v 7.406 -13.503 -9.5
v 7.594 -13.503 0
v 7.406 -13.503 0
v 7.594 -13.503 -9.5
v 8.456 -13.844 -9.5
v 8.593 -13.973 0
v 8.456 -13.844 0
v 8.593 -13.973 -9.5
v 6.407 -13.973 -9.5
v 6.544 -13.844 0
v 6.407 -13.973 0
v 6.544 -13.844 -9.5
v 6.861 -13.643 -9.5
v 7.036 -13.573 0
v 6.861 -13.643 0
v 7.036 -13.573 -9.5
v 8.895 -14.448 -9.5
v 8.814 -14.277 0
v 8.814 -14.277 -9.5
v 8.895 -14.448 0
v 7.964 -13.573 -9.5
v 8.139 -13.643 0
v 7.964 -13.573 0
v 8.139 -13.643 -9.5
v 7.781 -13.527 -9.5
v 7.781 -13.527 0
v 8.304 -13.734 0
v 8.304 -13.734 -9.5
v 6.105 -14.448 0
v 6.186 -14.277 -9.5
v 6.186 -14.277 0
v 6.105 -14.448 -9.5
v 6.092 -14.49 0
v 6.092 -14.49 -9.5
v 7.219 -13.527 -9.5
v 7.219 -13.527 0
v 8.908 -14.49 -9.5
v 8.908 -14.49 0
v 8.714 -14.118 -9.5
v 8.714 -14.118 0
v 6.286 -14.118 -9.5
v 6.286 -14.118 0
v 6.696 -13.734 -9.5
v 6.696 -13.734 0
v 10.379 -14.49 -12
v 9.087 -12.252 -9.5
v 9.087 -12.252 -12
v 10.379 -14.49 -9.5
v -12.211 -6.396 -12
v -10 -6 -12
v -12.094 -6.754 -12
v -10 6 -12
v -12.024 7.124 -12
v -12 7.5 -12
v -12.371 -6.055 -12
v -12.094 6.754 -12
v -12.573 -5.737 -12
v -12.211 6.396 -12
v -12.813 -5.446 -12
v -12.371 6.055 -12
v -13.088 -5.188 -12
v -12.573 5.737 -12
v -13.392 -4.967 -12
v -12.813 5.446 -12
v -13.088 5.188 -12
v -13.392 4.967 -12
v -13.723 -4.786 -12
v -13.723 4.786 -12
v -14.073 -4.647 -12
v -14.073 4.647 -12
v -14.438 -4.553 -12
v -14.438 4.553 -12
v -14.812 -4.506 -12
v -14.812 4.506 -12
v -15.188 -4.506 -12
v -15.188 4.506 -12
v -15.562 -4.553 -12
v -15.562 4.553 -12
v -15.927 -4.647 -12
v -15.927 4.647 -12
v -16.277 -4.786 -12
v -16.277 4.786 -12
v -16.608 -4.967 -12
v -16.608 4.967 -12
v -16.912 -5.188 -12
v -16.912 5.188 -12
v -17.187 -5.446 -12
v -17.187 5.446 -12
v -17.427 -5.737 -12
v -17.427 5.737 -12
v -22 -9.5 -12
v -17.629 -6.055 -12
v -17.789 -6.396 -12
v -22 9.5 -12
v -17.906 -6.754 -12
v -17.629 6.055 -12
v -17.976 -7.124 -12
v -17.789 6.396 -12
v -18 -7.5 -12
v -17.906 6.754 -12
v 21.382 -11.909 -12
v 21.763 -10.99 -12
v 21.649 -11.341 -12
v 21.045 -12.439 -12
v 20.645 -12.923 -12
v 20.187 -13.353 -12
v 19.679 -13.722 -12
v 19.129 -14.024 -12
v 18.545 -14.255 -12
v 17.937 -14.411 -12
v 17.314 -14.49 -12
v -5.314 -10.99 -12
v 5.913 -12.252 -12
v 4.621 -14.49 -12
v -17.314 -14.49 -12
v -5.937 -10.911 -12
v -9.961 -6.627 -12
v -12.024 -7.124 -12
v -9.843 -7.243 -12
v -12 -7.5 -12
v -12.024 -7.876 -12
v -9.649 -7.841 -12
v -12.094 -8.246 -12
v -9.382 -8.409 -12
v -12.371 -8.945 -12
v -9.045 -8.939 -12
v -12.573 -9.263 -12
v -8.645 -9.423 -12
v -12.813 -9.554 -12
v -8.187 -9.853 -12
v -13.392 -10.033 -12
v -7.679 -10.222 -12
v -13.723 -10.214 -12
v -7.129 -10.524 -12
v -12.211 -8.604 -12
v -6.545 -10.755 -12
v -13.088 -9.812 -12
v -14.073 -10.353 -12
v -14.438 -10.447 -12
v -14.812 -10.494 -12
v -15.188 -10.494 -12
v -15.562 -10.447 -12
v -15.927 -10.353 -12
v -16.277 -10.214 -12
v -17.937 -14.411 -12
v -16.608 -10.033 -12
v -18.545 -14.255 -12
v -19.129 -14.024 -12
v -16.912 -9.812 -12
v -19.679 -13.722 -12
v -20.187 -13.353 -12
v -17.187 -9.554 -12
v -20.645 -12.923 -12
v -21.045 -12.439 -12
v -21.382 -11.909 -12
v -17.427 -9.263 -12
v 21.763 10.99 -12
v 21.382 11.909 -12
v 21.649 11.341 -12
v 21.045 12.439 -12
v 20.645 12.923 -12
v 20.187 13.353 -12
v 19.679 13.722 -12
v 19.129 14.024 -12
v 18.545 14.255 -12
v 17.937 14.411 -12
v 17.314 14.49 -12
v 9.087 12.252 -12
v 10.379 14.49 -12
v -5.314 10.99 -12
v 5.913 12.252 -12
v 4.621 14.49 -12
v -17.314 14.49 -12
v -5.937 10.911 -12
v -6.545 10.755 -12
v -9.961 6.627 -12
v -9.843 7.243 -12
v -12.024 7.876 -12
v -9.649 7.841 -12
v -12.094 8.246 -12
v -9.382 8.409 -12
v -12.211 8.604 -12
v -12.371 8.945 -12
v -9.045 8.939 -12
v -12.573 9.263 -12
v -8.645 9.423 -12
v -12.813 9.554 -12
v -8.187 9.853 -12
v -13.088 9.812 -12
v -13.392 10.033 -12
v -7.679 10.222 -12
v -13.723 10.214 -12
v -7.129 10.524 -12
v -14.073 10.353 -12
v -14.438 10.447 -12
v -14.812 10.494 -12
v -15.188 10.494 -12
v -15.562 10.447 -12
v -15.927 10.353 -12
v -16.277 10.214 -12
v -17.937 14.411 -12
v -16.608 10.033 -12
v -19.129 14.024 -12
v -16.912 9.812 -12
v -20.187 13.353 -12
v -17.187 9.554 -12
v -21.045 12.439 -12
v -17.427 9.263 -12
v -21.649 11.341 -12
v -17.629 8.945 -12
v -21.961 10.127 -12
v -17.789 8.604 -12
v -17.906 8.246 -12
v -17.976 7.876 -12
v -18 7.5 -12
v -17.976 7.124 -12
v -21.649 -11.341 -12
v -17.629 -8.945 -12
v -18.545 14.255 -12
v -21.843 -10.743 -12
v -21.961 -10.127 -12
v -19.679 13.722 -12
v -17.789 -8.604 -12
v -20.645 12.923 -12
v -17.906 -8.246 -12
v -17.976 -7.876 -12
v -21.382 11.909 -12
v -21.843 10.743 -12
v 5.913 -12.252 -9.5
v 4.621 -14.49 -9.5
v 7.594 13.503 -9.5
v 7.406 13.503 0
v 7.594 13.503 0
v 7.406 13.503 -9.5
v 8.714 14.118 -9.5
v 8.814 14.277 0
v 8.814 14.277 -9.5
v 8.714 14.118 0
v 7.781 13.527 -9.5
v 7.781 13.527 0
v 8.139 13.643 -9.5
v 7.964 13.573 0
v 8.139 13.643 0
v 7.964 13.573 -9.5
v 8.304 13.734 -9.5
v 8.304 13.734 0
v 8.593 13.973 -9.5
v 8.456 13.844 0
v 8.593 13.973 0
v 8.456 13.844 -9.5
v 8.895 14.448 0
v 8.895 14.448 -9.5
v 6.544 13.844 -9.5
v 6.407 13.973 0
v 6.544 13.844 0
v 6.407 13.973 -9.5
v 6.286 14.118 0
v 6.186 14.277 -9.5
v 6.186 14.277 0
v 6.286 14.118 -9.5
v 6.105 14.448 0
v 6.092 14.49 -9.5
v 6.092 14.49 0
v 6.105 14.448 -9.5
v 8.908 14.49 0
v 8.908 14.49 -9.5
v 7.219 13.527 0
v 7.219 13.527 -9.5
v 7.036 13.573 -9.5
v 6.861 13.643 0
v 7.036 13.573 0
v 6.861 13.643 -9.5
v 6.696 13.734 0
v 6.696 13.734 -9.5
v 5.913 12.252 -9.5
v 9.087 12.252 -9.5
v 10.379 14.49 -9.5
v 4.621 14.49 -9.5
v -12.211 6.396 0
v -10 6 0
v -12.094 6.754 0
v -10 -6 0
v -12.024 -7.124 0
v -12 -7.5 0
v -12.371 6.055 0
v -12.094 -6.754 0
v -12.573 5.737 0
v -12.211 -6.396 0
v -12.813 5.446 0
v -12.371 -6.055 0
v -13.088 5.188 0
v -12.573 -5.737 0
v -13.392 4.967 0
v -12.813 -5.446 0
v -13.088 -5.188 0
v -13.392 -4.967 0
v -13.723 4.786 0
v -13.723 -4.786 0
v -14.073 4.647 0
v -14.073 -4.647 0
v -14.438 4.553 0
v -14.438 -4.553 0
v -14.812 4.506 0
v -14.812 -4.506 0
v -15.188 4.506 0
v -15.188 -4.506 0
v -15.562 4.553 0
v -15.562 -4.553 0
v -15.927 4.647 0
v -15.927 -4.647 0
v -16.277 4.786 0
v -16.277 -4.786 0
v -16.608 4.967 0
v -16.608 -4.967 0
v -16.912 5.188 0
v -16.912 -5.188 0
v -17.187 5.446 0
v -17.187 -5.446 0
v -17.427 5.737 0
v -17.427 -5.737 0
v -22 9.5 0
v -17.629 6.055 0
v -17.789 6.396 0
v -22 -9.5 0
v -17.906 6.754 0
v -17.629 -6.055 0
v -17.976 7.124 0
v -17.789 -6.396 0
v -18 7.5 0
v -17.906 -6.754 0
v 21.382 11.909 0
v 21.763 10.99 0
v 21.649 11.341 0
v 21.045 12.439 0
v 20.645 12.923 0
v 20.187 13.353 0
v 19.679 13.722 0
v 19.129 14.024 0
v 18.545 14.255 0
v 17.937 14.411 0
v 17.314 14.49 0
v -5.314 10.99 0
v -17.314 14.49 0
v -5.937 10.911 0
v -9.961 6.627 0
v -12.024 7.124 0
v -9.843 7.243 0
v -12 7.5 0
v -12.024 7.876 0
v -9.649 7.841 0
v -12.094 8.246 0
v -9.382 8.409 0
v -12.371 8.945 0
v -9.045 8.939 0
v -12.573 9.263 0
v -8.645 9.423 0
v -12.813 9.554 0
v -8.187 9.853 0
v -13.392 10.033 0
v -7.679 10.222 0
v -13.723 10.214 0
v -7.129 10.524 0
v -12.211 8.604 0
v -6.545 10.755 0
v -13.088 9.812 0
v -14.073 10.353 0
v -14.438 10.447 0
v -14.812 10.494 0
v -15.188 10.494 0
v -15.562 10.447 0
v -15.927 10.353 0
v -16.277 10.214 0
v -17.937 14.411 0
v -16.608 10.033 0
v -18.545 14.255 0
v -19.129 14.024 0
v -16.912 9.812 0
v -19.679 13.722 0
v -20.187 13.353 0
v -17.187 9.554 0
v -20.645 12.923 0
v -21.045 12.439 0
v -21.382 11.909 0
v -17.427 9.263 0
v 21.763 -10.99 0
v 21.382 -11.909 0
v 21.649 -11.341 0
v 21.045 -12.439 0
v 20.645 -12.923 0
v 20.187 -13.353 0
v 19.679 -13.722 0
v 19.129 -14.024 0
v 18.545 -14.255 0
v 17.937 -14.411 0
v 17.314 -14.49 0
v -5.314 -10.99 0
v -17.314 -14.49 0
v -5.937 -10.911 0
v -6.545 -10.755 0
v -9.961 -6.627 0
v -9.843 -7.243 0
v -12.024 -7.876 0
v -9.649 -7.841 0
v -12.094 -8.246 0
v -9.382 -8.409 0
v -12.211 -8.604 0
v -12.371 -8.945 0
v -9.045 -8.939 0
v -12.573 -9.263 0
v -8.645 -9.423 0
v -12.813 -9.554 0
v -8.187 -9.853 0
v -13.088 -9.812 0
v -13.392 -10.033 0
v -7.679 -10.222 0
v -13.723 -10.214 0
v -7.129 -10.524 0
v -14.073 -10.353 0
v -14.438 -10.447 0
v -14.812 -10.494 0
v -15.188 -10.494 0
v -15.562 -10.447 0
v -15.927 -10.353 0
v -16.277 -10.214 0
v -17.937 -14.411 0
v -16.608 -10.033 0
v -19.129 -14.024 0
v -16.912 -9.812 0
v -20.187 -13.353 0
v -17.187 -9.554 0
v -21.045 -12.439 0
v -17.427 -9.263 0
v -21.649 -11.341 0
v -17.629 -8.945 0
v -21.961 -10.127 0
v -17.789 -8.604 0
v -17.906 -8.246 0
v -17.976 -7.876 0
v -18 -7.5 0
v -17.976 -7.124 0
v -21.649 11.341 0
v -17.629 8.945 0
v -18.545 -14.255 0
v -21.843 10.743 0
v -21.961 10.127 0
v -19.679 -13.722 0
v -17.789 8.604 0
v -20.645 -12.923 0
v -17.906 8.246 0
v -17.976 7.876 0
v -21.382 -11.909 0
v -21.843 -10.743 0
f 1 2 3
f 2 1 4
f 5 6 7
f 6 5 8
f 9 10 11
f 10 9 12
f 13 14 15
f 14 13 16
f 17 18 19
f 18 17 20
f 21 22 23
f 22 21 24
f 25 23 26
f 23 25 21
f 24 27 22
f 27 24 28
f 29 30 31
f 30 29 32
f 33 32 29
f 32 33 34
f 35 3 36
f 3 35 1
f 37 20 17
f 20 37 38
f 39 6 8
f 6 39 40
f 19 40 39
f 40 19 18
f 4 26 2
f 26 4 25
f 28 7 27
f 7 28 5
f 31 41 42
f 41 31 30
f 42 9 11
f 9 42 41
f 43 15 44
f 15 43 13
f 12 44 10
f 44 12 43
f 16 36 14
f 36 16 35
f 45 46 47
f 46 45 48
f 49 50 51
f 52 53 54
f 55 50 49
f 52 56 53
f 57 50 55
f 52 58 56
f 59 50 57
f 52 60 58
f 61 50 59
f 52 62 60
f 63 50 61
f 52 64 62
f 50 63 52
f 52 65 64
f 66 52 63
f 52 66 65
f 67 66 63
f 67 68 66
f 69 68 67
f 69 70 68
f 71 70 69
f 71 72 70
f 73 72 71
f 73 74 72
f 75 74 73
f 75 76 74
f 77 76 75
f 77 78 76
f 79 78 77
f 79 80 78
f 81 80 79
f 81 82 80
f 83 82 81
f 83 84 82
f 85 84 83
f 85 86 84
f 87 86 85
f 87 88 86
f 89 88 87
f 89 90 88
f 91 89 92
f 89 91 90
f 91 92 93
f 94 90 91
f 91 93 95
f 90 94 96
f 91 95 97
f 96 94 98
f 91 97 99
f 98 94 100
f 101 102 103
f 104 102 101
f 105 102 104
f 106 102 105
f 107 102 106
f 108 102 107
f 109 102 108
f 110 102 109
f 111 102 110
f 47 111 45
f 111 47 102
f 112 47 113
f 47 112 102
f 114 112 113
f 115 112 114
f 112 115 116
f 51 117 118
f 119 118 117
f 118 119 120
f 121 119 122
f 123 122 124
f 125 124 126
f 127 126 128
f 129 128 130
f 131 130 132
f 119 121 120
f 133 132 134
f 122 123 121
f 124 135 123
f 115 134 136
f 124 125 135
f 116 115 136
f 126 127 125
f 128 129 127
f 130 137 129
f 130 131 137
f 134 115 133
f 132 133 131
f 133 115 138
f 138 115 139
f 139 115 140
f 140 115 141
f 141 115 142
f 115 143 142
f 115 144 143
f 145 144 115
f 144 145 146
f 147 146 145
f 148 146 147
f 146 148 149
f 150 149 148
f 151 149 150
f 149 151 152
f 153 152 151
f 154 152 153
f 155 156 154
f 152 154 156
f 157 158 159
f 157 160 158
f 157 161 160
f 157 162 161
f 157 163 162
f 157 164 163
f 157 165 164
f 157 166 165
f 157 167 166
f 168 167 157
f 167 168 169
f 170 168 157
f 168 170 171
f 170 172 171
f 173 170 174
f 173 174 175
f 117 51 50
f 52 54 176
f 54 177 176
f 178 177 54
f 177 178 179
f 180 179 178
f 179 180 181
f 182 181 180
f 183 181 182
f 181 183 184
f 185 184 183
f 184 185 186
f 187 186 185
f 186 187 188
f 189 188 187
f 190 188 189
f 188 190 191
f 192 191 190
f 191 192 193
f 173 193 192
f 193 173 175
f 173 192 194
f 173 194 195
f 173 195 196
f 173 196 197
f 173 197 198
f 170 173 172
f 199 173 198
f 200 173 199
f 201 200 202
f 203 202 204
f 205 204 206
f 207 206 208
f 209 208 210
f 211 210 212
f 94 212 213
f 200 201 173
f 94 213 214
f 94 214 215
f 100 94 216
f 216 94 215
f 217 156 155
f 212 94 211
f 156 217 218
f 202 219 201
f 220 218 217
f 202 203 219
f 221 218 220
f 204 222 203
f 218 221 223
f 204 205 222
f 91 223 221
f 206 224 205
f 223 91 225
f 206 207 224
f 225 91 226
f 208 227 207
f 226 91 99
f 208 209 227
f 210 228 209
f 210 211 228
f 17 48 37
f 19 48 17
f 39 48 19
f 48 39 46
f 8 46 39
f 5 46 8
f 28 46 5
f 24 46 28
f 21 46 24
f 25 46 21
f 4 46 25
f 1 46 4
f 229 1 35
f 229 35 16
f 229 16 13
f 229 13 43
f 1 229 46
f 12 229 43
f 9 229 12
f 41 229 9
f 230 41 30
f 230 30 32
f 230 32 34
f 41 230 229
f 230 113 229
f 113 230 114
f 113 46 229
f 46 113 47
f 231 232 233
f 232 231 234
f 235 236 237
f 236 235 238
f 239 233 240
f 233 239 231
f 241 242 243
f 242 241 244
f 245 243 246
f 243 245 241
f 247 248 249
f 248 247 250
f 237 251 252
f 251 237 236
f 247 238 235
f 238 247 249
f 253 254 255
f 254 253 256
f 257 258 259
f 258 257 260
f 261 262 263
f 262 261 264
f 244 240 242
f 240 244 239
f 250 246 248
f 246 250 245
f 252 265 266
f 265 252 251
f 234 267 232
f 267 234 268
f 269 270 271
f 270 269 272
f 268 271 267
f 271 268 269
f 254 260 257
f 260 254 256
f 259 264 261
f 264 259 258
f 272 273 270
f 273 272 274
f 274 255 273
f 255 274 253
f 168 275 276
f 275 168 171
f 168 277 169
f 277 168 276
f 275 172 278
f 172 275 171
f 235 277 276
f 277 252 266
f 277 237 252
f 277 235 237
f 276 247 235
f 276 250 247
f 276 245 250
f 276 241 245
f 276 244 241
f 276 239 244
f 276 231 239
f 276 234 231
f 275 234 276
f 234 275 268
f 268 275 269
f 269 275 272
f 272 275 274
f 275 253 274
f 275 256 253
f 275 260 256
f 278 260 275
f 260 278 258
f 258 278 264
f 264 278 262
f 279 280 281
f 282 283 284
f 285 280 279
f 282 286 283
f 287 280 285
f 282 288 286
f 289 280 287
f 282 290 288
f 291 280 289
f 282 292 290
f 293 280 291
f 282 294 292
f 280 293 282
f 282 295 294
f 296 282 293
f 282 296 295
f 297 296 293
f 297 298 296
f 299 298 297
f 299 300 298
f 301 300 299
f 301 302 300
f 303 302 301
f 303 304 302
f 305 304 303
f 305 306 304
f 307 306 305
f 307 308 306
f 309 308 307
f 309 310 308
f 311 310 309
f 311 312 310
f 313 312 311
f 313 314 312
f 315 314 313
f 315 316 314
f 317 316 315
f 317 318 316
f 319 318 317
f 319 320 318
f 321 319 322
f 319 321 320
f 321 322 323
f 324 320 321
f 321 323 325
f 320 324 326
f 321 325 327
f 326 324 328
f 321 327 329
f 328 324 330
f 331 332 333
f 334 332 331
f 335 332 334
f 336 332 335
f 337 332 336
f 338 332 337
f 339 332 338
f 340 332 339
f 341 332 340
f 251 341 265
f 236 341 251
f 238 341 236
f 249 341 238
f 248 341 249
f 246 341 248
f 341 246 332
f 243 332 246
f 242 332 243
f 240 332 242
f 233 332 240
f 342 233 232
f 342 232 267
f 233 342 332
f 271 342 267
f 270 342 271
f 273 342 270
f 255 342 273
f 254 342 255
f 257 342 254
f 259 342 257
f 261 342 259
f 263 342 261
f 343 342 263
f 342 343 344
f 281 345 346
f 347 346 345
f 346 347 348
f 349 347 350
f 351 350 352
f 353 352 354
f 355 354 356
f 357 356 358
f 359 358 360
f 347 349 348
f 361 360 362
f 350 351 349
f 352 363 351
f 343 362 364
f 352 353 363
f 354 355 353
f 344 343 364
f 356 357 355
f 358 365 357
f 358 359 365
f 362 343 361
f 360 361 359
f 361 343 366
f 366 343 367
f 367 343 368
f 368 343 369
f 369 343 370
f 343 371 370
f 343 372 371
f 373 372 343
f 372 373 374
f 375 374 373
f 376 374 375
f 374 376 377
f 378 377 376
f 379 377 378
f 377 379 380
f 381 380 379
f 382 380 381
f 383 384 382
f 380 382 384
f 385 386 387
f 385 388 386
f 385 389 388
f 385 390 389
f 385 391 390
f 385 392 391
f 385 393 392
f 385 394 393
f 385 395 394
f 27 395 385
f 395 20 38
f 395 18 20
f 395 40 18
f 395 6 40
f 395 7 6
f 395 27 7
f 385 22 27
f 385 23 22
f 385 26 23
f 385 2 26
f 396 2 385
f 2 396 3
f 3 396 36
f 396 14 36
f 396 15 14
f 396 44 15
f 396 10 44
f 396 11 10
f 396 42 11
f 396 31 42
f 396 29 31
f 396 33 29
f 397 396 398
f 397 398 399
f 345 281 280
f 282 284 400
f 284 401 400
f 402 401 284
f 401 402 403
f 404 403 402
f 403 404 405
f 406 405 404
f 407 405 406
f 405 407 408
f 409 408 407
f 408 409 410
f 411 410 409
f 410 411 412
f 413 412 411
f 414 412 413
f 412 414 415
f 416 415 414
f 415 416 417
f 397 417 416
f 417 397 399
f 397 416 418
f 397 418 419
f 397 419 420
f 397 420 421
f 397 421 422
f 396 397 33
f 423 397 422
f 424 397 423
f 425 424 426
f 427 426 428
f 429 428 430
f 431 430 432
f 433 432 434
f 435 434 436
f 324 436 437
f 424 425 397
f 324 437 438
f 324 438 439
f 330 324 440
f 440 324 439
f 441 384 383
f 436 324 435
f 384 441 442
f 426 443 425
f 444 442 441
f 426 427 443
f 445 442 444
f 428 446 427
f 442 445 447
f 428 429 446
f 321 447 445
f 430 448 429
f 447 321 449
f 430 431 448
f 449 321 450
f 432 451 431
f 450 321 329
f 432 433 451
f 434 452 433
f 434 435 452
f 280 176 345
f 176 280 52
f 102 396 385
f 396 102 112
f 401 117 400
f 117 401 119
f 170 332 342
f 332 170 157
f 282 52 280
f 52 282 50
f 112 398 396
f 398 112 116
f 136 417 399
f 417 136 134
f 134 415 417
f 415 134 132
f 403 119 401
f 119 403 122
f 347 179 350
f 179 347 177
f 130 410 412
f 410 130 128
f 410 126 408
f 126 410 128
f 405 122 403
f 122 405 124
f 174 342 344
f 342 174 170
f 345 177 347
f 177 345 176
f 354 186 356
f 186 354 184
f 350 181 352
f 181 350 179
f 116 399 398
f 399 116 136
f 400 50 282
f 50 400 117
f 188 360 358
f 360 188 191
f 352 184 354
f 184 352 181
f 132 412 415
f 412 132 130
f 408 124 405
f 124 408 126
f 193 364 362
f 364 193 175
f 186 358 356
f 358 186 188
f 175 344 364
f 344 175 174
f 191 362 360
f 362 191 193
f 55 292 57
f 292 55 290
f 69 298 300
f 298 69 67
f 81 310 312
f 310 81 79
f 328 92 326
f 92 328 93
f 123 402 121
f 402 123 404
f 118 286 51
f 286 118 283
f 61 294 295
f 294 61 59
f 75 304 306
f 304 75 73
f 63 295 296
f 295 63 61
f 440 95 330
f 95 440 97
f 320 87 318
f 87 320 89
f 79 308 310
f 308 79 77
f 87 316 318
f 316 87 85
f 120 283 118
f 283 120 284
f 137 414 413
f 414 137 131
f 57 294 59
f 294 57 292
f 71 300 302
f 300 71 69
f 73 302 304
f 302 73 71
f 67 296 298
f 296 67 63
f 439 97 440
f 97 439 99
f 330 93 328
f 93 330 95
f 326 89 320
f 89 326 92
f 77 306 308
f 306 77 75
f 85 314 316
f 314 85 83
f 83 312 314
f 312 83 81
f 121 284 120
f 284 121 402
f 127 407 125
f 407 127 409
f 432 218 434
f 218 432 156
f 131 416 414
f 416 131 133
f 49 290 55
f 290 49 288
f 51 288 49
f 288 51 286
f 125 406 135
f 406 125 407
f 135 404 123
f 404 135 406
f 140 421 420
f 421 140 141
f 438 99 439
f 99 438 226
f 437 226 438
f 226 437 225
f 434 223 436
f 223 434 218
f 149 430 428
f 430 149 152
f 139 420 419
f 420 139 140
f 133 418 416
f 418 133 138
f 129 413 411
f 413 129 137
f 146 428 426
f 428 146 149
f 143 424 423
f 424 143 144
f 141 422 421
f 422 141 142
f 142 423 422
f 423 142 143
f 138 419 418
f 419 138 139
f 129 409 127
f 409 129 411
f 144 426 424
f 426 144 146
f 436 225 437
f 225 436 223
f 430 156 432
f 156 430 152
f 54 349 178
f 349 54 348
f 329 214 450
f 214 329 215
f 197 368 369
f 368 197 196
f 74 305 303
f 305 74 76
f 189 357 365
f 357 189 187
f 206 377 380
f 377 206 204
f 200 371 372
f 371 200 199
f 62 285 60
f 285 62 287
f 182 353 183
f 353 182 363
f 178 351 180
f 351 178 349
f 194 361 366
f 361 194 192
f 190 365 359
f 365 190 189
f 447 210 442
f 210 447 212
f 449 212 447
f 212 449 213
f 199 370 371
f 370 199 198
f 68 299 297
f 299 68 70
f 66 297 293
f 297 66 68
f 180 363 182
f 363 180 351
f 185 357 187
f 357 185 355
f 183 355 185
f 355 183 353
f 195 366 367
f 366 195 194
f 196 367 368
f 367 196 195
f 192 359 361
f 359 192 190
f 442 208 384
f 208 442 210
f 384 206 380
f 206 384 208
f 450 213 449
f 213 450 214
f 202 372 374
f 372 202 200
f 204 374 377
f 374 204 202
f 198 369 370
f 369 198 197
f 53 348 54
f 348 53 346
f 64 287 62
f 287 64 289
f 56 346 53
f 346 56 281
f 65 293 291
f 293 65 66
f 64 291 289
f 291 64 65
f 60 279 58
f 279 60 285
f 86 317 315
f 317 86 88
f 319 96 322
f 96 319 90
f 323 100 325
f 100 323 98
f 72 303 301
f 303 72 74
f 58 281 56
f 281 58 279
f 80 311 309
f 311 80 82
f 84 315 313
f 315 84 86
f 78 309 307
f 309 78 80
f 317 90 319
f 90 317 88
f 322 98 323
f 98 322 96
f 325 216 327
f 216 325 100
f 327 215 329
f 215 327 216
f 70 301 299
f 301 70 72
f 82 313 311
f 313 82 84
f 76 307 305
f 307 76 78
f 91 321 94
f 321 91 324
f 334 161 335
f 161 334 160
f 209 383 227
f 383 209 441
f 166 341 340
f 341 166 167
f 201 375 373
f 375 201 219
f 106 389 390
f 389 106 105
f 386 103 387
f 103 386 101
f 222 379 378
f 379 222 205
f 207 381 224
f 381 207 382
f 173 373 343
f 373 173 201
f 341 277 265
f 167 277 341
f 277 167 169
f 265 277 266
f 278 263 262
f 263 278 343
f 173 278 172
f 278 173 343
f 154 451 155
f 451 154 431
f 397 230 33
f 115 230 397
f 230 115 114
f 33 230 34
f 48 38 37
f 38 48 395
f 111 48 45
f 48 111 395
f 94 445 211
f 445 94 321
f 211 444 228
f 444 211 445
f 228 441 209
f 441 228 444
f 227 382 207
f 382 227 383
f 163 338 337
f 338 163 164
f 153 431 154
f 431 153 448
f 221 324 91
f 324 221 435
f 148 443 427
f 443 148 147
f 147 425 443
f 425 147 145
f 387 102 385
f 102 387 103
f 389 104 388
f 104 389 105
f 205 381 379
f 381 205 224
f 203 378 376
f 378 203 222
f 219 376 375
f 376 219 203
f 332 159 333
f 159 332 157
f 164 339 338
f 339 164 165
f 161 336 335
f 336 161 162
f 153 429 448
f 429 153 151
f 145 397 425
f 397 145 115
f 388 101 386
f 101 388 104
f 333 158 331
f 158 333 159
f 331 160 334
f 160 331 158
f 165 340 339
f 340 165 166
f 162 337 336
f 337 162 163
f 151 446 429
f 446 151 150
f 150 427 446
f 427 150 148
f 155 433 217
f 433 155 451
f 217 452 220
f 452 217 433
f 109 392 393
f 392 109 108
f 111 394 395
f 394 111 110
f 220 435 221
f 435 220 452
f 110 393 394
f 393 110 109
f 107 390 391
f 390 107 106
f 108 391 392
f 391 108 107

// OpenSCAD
$fn = 50;


difference() {
	union() {
		translate(v = [0, 0, -12]) {
			hull() {
				translate(v = [-17.0000000000, 9.5000000000, 0]) {
					cylinder(h = 12, r = 5);
				}
				translate(v = [17.0000000000, 9.5000000000, 0]) {
					cylinder(h = 12, r = 5);
				}
				translate(v = [-17.0000000000, -9.5000000000, 0]) {
					cylinder(h = 12, r = 5);
				}
				translate(v = [17.0000000000, -9.5000000000, 0]) {
					cylinder(h = 12, r = 5);
				}
			}
		}
	}
	union() {
		translate(v = [7.5000000000, -15, -12]) {
			rotate(a = [0, 0, 0]) {
				difference() {
					union() {
						translate(v = [0, 0, -50.0000000000]) {
							cylinder(h = 100, r = 1.5000000000);
						}
						translate(v = [0, 0, -50.0000000000]) {
							cylinder(h = 100, r = 1.5000000000);
						}
						linear_extrude(height = 2.5000000000) {
							polygon(points = [[3.1735000000, 0.0000000000], [1.5867500000, 2.7483316189], [-1.5867500000, 2.7483316189], [-3.1735000000, 0.0000000000], [-1.5867500000, -2.7483316189], [1.5867500000, -2.7483316189]]);
						}
						translate(v = [0, 0, -50.0000000000]) {
							cylinder(h = 100, r = 1.5000000000);
						}
					}
					union();
				}
			}
		}
		translate(v = [7.5000000000, 15, -12]) {
			rotate(a = [0, 0, 0]) {
				difference() {
					union() {
						translate(v = [0, 0, -50.0000000000]) {
							cylinder(h = 100, r = 1.5000000000);
						}
						translate(v = [0, 0, -50.0000000000]) {
							cylinder(h = 100, r = 1.5000000000);
						}
						linear_extrude(height = 2.5000000000) {
							polygon(points = [[3.1735000000, 0.0000000000], [1.5867500000, 2.7483316189], [-1.5867500000, 2.7483316189], [-3.1735000000, 0.0000000000], [-1.5867500000, -2.7483316189], [1.5867500000, -2.7483316189]]);
						}
						translate(v = [0, 0, -50.0000000000]) {
							cylinder(h = 100, r = 1.5000000000);
						}
					}
					union();
				}
			}
		}
		translate(v = [0, 0, -3]) {
			rotate(a = [0, 0, 180]) {
				difference() {
					union() {
						translate(v = [-10, 0, -9]) {
							#hull() {
								translate(v = [-15.0000000000, 6.0000000000, 0]) {
									cylinder(h = 12, r = 5);
								}
								translate(v = [15.0000000000, 6.0000000000, 0]) {
									cylinder(h = 12, r = 5);
								}
								translate(v = [-15.0000000000, -6.0000000000, 0]) {
									cylinder(h = 12, r = 5);
								}
								translate(v = [15.0000000000, -6.0000000000, 0]) {
									cylinder(h = 12, r = 5);
								}
							}
						}
					}
					union();
				}
			}
		}
		translate(v = [-15.0000000000, -7.5000000000, -50.0000000000]) {
			cylinder(h = 100, r = 3.0000000000);
		}
		translate(v = [-15.0000000000, 7.5000000000, -50.0000000000]) {
			cylinder(h = 100, r = 3.0000000000);
		}
		translate(v = [-15.0000000000, 7.5000000000, -50.0000000000]) {
			cylinder(h = 100, r = 3.0000000000);
		}
		translate(v = [0.0000000000, 7.5000000000, -50.0000000000]) {
			cylinder(h = 100, r = 3.0000000000);
		}
		translate(v = [15.0000000000, 7.5000000000, -50.0000000000]) {
			cylinder(h = 100, r = 3.0000000000);
		}
		translate(v = [-15.0000000000, -7.5000000000, -50.0000000000]) {
			cylinder(h = 100, r = 3.0000000000);
		}
		translate(v = [0.0000000000, -7.5000000000, -50.0000000000]) {
			cylinder(h = 100, r = 3.0000000000);
		}
		translate(v = [15.0000000000, -7.5000000000, -50.0000000000]) {
			cylinder(h = 100, r = 3.0000000000);
		}
	}
}
